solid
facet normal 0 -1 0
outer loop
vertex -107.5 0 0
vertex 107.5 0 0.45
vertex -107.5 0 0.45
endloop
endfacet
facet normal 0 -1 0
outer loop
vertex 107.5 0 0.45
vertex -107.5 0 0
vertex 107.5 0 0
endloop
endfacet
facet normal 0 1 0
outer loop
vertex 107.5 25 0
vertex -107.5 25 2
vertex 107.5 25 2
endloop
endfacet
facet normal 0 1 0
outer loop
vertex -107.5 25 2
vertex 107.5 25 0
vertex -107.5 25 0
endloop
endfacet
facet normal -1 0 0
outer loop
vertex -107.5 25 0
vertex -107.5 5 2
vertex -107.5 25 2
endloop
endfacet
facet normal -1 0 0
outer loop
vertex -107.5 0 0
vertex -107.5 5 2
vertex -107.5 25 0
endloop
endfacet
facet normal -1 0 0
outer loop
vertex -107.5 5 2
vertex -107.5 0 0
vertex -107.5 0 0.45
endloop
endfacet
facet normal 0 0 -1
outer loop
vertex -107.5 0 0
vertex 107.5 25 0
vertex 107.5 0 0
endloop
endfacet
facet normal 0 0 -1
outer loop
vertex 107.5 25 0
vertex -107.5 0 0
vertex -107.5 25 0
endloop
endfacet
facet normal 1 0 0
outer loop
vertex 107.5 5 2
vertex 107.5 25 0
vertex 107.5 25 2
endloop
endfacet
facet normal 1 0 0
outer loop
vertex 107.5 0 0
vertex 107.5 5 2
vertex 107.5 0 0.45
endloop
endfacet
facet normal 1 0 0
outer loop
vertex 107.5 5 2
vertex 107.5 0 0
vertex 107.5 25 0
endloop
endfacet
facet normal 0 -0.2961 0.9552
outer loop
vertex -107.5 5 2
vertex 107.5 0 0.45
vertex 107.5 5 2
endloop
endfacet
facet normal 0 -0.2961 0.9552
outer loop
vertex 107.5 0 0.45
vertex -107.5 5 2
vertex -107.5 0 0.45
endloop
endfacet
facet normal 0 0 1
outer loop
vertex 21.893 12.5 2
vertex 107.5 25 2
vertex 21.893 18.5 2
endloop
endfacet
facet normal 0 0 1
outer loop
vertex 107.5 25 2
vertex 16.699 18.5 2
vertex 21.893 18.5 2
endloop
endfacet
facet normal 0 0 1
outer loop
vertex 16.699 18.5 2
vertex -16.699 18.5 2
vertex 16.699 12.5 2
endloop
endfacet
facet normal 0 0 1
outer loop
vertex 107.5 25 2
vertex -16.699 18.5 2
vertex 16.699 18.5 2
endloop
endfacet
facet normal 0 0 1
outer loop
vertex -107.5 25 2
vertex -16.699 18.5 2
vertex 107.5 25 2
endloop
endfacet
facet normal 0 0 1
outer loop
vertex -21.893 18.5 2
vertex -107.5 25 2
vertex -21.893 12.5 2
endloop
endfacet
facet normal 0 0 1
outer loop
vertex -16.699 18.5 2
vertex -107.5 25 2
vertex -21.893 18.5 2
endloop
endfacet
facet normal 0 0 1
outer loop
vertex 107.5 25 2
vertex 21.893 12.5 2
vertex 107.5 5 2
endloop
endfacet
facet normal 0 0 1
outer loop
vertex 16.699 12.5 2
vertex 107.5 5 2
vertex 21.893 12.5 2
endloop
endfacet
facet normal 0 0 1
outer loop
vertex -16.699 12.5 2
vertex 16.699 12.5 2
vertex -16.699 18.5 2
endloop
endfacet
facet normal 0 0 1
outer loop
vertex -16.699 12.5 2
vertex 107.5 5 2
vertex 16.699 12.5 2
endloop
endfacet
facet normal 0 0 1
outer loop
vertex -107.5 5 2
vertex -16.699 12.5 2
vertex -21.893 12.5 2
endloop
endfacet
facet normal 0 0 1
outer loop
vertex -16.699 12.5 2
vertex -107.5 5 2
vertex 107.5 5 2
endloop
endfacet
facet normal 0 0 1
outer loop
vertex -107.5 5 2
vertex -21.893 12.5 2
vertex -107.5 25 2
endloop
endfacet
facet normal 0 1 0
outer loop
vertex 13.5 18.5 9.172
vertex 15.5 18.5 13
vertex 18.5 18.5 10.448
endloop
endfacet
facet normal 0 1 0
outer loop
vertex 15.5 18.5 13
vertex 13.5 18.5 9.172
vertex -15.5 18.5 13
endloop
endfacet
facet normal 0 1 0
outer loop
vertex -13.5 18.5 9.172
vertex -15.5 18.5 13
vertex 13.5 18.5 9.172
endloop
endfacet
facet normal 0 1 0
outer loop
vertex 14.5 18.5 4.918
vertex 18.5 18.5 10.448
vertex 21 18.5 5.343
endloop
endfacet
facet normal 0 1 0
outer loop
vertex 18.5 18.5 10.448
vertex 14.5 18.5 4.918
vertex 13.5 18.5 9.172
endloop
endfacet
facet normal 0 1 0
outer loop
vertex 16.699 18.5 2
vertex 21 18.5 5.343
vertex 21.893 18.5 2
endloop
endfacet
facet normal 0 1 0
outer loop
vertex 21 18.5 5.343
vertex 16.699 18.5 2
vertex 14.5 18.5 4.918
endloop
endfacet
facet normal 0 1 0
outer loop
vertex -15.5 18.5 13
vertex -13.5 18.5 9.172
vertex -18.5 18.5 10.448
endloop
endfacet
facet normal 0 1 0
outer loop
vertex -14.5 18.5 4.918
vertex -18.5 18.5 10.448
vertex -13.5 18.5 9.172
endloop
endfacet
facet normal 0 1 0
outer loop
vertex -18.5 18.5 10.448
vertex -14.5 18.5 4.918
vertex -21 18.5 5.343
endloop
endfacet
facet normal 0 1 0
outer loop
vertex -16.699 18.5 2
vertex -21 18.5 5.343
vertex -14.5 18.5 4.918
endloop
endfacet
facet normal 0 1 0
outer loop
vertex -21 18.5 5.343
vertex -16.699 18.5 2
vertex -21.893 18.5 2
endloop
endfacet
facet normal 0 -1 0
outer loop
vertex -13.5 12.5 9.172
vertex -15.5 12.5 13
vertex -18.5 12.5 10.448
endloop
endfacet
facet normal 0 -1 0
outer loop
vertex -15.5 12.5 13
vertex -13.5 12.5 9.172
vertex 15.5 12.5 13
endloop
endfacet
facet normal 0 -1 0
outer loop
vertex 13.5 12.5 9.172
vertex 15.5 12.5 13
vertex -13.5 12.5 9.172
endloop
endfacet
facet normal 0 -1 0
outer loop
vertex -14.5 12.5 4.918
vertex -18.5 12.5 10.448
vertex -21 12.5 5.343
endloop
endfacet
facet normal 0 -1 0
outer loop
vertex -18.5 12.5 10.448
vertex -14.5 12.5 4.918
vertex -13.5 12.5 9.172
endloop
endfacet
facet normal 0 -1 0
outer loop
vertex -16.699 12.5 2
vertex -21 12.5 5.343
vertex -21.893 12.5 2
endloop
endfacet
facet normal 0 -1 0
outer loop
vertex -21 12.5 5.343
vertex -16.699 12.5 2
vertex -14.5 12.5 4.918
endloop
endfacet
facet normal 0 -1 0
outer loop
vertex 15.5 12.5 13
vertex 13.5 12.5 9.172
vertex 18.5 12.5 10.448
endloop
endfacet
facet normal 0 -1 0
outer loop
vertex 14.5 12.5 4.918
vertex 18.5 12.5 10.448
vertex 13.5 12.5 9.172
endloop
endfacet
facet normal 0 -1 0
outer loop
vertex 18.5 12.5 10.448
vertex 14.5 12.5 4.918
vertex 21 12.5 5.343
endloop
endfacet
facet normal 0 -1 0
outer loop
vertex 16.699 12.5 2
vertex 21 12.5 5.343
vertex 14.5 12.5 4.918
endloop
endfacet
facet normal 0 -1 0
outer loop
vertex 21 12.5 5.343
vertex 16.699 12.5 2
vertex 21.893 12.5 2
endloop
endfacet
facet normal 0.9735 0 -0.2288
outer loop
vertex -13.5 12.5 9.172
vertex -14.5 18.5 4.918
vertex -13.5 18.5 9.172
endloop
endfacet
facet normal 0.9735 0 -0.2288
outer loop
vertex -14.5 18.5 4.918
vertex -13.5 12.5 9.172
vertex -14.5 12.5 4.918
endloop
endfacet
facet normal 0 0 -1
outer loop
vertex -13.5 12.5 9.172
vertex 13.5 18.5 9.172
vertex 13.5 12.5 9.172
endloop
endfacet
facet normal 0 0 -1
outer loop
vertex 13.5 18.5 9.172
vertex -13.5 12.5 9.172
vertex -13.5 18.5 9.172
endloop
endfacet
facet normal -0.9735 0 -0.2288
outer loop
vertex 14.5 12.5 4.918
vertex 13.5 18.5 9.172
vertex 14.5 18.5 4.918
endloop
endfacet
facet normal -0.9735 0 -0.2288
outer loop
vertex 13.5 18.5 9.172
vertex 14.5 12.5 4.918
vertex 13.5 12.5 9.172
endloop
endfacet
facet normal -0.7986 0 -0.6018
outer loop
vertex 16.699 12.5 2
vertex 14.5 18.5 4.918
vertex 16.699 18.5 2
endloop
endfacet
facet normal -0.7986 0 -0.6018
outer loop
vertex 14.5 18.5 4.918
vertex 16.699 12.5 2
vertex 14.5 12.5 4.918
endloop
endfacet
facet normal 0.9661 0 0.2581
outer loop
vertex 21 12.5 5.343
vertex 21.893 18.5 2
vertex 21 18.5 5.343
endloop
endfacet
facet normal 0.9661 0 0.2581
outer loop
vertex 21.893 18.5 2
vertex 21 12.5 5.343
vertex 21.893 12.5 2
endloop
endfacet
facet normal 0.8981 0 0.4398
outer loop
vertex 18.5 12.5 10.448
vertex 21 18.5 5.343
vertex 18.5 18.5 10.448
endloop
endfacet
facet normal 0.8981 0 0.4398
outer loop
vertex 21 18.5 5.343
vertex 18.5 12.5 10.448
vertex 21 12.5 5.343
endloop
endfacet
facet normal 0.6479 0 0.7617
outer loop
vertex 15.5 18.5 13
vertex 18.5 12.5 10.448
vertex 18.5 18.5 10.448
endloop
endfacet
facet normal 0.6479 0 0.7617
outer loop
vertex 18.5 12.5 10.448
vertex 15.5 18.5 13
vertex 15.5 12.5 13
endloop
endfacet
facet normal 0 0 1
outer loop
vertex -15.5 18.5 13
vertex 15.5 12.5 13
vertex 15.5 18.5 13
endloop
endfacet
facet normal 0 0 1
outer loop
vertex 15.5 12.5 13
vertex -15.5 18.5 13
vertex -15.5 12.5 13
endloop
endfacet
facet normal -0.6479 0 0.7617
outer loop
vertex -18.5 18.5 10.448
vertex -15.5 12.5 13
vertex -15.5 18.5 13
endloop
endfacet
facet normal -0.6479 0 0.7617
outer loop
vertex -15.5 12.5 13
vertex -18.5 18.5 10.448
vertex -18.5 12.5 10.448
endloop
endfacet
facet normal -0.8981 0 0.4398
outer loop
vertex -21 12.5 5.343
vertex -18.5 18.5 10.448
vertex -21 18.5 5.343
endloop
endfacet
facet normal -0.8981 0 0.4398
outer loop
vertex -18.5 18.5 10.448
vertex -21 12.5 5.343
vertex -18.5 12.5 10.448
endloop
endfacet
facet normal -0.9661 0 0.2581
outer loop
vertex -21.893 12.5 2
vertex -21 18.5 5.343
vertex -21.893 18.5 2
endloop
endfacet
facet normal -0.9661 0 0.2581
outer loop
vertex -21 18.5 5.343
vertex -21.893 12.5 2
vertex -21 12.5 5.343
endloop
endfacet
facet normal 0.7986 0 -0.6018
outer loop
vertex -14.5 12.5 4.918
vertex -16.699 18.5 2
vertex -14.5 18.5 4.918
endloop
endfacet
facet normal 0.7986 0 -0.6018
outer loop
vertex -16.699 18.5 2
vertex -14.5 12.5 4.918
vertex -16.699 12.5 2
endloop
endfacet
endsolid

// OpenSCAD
/*
    Painter's Guard / Paint Shield

    All dimensions in millimetres. Parametric OpenSCAD model.
    Print blade-side down; the handle bridge may need supports.
*/

// ===== Guard =====
guard_length        = 215;
guard_width         = 25;
guard_thickness     = 2;
chamfer_width       = 5;       // Distance back from long working edge
chamfer_tip         = 0.45;    // Thickness at the chamfered edge

// ===== Compact central bridge handle =====
handle_length       = 44;      // Maximum overall length along the guard
handle_width        = 6;       // Width across the guard (Y)
handle_height       = 13;      // Maximum total height from blade underside
handle_foot_overlap = 0.4;     // Intersection with blade ensures a solid union

assert(guard_length > handle_length, "Handle must fit along the blade");
assert(handle_width <= guard_width - 2*chamfer_width,
       "Centred handle must remain clear of the chamfered edge");
assert(handle_length >= 35, "This grip profile requires at least 35 mm length");
assert(handle_height >= 13, "This grip profile requires at least 13 mm height");
assert(chamfer_width > 0 && chamfer_width < guard_width,
       "Chamfer width must fit within blade");
assert(chamfer_tip > 0 && chamfer_tip < guard_thickness,
       "Chamfer tip must be thinner than the guard");

// Flat bottom (Z=0). The top surface slopes down to Y=0.
module guard_blade() {
    rotate([0, 0, 90])
        rotate([90, 0, 0])
            linear_extrude(height=guard_length, center=true, convexity=10)
                polygon(points=[
                    [0,             0],
                    [guard_width,   0],
                    [guard_width,   guard_thickness],
                    [chamfer_width, guard_thickness],
                    [0,             chamfer_tip]
                ]);
}

// Compact arched grip. A finger recess is formed by the inner contour.
// Outer limits remain strictly within handle_length and handle_height.
module central_handle() {
    half = handle_length / 2;
    base = guard_thickness - handle_foot_overlap;
    zscale = (handle_height - base) / (15 - 1.6);

    // Geometry defined relative to the centre; scale the vertical profile
    // to respect the chosen overall handle height.
    translate([0, (guard_width + handle_width)/2 + 3, 0])
        rotate([90, 0, 0])
            linear_extrude(height=handle_width, convexity=10)
                polygon(points=[
                    [-half,       base],
                    [-half+1,     base + 4.4*zscale],
                    [-half+3.5,   base + 10.4*zscale],
                    [-half+6.5,   handle_height],
                    [ half-6.5,   handle_height],
                    [ half-3.5,   base + 10.4*zscale],
                    [ half-1,     base + 4.4*zscale],
                    [ half,       base],
                    // Return around inner (finger-clearance) opening.
                    [ half-5,     base],
                    [ half-7.5,   base + 3.9*zscale],
                    [ half-8.5,   base + 8.9*zscale],
                    [-half+8.5,   base + 8.9*zscale],
                    [-half+7.5,   base + 3.9*zscale],
                    [-half+5,     base]
                ]);
}

union() {
    guard_blade();
    central_handle();
}
